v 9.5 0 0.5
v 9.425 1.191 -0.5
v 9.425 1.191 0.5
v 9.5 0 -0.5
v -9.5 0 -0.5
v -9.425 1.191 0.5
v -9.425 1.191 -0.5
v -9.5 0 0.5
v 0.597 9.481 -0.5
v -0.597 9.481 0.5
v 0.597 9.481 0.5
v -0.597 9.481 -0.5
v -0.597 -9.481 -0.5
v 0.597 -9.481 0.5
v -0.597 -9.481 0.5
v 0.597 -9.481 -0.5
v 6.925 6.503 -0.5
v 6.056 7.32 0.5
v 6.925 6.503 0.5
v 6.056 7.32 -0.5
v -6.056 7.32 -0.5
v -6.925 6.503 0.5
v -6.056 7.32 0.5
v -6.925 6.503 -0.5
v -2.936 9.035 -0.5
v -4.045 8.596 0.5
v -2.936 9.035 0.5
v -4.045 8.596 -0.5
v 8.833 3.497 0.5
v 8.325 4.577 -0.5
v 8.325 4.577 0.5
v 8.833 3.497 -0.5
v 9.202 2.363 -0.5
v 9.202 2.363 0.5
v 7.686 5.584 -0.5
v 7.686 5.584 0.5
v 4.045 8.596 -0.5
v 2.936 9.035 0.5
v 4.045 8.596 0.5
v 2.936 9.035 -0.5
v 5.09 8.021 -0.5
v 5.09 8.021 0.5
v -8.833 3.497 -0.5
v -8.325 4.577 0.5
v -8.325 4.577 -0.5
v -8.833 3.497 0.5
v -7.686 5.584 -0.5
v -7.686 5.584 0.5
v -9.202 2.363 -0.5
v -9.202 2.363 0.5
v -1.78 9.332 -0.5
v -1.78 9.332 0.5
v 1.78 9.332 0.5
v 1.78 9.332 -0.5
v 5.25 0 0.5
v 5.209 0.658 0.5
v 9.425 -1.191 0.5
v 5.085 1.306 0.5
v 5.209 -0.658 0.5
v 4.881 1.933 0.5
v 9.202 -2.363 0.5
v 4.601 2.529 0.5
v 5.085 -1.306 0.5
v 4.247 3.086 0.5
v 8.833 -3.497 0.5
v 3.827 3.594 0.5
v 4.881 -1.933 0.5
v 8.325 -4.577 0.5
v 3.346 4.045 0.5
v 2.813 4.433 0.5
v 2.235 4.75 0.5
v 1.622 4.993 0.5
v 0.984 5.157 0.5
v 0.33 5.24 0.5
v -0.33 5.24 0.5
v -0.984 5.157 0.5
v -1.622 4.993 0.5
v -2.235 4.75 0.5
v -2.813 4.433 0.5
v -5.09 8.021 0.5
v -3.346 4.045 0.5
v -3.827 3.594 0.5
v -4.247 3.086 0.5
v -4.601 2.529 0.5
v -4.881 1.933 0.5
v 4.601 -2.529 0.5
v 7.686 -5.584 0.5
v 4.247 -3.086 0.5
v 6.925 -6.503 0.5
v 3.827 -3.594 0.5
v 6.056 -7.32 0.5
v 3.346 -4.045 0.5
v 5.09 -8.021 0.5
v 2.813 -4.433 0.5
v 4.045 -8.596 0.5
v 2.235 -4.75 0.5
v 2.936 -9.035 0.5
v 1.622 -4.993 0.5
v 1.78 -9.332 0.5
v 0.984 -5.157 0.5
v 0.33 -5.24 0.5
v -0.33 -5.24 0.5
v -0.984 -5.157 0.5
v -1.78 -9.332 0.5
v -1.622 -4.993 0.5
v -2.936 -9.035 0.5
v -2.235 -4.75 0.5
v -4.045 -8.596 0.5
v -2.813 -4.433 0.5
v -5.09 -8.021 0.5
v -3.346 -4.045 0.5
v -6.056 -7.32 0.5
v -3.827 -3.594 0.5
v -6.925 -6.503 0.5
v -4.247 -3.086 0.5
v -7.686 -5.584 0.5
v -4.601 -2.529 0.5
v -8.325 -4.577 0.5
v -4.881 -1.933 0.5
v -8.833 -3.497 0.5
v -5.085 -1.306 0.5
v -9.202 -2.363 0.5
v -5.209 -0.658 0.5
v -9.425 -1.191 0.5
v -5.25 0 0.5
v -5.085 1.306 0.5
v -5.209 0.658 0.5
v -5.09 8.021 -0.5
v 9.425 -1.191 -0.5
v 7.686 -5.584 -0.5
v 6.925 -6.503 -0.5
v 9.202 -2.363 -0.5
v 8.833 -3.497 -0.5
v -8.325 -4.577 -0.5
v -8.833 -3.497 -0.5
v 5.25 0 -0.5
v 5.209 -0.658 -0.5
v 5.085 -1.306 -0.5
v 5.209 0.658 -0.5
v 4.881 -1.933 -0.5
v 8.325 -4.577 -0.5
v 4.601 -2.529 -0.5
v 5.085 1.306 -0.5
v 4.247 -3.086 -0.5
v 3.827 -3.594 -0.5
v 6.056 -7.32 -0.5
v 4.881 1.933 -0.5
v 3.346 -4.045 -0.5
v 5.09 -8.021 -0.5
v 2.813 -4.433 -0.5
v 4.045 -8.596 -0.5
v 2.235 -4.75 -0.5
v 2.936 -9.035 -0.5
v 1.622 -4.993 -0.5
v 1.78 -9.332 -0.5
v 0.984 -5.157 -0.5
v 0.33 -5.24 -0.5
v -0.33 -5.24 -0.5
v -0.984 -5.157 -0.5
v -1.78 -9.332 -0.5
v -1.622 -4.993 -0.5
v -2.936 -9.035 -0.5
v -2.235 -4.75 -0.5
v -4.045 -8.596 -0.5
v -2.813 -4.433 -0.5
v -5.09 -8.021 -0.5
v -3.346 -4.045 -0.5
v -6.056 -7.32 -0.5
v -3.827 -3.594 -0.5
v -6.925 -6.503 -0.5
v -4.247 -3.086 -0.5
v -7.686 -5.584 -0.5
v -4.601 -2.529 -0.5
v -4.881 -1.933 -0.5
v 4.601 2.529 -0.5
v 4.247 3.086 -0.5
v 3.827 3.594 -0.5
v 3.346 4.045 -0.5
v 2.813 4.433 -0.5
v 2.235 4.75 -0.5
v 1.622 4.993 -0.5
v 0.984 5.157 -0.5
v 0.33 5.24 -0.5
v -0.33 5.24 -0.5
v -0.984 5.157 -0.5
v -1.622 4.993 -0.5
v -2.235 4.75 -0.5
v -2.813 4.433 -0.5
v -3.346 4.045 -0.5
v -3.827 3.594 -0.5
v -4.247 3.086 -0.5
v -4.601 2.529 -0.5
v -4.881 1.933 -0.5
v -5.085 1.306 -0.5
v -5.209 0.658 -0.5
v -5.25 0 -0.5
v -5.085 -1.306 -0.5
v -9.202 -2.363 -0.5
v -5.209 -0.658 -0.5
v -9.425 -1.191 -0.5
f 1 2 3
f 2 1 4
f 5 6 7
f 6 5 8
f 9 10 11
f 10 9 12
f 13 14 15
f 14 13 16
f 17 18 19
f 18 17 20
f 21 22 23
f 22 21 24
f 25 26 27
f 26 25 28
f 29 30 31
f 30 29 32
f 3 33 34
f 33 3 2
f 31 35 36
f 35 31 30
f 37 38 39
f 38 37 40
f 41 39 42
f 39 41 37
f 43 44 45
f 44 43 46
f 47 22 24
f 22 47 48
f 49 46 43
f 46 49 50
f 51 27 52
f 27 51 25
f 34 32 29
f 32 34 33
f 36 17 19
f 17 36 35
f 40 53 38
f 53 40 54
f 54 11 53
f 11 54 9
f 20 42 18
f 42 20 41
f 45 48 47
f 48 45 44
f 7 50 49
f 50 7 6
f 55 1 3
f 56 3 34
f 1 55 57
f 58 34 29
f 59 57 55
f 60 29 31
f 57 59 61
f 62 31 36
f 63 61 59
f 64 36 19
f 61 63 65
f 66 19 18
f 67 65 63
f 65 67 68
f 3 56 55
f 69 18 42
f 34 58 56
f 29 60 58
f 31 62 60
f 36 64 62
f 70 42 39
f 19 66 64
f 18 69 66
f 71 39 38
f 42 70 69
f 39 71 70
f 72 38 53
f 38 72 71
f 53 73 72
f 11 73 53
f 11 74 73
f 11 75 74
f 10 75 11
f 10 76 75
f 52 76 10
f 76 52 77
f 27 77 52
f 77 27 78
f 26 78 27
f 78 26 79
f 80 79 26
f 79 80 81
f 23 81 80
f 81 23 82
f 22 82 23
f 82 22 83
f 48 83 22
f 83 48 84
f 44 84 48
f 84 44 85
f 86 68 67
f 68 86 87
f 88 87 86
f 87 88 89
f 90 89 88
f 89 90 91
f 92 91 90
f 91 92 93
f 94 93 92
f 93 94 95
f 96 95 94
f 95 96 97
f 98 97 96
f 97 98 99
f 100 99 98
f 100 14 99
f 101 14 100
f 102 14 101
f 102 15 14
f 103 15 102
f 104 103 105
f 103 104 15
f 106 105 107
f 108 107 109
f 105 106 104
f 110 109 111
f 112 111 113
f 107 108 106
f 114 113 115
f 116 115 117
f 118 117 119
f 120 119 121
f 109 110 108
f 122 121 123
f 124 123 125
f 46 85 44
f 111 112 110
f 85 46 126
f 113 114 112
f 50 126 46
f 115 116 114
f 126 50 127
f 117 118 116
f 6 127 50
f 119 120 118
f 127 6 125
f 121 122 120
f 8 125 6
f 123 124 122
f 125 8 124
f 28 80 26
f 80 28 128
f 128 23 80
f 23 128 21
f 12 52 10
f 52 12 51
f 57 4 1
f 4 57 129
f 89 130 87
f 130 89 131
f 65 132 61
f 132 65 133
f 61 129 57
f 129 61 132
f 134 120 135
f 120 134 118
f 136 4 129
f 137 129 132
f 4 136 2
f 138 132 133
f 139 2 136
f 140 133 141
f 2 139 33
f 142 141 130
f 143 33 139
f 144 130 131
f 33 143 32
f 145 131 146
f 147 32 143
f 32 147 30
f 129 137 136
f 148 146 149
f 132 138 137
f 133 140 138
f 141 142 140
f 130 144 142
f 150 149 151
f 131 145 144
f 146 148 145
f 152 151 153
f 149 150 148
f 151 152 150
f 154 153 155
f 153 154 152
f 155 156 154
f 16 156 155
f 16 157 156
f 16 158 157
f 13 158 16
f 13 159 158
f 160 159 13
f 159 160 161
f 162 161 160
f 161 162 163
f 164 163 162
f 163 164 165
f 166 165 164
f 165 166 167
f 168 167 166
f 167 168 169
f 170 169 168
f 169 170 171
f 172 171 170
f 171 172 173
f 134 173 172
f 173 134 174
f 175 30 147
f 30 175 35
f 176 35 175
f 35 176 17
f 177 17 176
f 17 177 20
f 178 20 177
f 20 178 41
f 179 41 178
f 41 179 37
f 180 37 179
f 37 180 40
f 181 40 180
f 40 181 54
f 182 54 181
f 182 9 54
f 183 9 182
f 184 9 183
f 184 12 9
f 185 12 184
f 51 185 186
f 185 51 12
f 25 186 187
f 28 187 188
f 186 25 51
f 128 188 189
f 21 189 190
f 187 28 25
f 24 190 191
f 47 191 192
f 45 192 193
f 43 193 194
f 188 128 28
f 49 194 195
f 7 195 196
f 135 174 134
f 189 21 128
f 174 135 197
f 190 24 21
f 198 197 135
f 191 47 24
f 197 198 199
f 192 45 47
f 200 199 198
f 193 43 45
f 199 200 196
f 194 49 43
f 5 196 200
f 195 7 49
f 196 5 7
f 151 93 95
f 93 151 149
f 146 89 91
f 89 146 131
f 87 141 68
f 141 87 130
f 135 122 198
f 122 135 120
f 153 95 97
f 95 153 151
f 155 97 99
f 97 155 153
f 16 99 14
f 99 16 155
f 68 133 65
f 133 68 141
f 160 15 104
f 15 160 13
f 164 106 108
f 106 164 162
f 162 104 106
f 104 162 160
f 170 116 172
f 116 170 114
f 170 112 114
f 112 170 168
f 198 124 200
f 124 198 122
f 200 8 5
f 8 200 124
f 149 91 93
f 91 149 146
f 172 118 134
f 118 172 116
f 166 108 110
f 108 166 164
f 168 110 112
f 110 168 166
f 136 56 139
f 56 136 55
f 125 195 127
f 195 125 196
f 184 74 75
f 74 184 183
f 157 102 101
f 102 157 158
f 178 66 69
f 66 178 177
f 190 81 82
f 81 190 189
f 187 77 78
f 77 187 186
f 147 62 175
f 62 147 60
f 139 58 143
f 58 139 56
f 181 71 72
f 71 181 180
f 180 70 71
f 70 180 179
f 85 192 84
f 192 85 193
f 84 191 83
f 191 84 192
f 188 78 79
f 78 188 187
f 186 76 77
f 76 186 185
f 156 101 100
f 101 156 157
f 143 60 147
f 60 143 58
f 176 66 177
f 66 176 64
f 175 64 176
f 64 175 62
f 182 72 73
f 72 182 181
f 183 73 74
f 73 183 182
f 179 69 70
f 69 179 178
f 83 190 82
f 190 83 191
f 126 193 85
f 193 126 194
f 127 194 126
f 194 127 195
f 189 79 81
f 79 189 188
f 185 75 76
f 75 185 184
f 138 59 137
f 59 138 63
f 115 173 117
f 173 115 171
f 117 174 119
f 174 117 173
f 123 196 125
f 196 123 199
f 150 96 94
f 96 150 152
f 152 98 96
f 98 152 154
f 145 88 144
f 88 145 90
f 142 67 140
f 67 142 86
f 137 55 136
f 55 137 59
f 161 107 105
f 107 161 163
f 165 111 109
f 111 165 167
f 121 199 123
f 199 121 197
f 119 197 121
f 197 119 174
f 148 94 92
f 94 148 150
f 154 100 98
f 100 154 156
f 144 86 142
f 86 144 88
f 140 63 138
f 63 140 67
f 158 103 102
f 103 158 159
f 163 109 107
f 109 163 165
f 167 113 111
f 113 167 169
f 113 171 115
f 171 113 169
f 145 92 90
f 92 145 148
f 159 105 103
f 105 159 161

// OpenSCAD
$fn = 50;


difference() {
	union() {
		translate(v = [0, 0, -0.5000000000]) {
			cylinder(h = 1, r = 9.5000000000);
		}
	}
	union() {
		translate(v = [0, 0, -100.0000000000]) {
			cylinder(h = 200, r = 5.2500000000);
		}
	}
}
